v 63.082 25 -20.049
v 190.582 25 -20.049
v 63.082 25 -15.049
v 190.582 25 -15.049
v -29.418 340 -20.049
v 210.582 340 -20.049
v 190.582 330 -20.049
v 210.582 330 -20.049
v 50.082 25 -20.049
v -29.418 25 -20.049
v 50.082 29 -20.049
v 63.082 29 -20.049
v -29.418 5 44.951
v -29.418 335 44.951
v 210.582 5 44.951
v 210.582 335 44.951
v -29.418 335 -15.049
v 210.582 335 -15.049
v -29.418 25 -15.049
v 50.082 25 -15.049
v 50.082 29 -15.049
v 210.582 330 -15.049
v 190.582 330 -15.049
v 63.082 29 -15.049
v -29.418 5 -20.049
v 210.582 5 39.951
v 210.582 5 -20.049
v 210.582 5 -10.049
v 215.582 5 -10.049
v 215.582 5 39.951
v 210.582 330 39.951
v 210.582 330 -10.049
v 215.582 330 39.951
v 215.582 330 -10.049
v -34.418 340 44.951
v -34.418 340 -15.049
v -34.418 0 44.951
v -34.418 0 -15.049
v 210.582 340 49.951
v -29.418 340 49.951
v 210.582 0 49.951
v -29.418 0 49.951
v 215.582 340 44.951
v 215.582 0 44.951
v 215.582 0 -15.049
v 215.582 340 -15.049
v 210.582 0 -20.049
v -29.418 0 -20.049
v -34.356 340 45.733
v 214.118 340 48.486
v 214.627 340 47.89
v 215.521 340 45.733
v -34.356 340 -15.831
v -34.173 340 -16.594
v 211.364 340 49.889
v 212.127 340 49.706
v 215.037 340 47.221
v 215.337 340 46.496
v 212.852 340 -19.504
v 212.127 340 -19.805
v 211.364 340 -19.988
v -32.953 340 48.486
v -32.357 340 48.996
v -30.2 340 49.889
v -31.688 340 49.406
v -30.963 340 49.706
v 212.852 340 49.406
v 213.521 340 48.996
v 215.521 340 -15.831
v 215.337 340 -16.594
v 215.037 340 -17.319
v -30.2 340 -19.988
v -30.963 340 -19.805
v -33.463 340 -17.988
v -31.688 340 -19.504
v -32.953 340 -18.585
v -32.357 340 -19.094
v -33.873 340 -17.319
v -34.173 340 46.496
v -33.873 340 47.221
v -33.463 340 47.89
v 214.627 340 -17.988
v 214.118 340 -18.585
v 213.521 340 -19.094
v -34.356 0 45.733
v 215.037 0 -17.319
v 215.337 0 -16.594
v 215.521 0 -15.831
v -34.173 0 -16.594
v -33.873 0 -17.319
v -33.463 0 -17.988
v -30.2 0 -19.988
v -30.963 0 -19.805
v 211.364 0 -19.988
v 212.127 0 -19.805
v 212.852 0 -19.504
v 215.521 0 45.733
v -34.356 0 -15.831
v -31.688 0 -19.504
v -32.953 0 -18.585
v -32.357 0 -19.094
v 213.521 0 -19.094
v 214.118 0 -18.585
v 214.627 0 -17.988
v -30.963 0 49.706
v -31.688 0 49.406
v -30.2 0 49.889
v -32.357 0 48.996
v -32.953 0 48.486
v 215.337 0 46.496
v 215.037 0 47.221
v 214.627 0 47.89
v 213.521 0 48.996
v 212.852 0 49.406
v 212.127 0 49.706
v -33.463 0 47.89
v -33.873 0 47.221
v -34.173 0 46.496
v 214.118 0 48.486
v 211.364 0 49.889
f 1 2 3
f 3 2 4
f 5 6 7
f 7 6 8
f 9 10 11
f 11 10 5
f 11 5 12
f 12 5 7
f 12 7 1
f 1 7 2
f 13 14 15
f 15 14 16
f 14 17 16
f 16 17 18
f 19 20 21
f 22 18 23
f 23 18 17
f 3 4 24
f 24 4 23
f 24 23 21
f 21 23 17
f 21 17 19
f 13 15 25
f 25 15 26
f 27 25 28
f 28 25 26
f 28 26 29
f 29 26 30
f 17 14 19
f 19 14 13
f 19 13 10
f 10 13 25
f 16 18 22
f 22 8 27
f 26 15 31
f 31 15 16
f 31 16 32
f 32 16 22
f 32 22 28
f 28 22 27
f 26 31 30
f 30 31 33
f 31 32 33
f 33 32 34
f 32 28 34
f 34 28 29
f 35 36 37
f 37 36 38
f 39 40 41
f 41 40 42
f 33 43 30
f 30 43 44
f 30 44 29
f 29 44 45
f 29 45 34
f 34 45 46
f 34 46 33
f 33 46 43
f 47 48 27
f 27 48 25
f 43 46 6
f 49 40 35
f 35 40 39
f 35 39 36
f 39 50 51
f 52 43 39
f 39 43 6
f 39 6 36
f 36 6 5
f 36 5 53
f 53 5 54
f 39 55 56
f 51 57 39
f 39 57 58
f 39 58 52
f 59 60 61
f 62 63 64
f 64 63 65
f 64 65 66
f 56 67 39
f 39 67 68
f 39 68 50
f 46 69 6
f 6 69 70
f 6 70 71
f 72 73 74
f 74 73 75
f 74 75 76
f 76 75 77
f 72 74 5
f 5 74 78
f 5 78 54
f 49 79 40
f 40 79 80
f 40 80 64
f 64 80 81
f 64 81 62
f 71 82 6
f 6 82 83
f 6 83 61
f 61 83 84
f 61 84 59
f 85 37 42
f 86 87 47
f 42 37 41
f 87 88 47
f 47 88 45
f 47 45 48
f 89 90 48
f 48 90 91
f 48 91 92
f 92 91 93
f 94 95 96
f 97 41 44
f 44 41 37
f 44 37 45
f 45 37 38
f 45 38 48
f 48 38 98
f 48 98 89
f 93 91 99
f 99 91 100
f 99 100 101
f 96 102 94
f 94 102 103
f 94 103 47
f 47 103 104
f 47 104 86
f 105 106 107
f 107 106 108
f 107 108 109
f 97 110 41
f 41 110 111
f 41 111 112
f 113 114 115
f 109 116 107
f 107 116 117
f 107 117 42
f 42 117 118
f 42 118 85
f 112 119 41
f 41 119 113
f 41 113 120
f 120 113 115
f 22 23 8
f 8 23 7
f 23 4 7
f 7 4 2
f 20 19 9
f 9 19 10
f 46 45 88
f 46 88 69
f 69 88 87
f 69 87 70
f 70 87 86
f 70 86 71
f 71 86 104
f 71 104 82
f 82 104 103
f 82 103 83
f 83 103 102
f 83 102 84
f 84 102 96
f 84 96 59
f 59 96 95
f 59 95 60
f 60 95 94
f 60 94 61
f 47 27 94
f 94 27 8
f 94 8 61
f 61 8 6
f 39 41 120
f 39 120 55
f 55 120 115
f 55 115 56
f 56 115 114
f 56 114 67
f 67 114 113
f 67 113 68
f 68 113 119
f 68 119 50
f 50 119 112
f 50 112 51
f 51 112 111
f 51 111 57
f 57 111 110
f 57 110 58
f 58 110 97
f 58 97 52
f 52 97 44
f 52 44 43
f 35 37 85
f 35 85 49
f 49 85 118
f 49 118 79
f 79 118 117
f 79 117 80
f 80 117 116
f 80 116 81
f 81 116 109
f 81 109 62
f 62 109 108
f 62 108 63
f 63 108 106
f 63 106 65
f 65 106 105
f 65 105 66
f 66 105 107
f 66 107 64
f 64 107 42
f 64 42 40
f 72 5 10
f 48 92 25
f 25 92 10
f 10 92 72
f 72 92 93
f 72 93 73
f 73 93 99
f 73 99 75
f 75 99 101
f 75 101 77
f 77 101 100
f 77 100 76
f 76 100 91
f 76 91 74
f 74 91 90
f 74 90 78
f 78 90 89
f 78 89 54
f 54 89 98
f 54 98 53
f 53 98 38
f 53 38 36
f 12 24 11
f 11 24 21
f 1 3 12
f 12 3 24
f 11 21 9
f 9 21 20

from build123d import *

# Parameters (mm, degrees)
SKETCH_2_W          = 250
SKETCH_2_H          = 70
EXTRUDE_1_DEPTH     = 340
CUT_EXTRUDE_START   = -5
SKETCH_3_W          = 60
SKETCH_3_H          = 330
CUT_EXTRUDE_1_DEPTH = 240
SKETCH_4_W          = 50
SKETCH_4_H          = 325
CUT_EXTRUDE_2_DEPTH = 5
CUT_EXTRUDE_3_DEPTH = 5
FILLET_START        = -1
FILLET_1_DEPTH      = 342
SKETCH_6_W          = 13
SKETCH_6_H          = 4
CUT_EXTRUDE_4_DEPTH = 10


with BuildPart() as part:
    # 草圖2 → 填料-伸長1 (new body)
    with BuildSketch(Plane(origin=(0, 0, 0), x_dir=(1, 0, 0), z_dir=(0, 1, 0))):
        with Locations((90.582134355, -14.950757877)):
            Rectangle(SKETCH_2_W, SKETCH_2_H)
    extrude(amount=EXTRUDE_1_DEPTH)

    # 草圖3 → 除料-伸長1 (cut)
    with BuildSketch(Plane(origin=(215.582134355, 0, 0), x_dir=(0, 0, -1), z_dir=(1, 0, 0)).offset(CUT_EXTRUDE_START)):
        with Locations((-14.950757877, 170)):
            Rectangle(SKETCH_3_W, SKETCH_3_H)
    extrude(amount=-CUT_EXTRUDE_1_DEPTH, mode=Mode.SUBTRACT)

    # 草圖4 → 除料-伸長2 (cut)
    with BuildSketch(Plane(origin=(215.582134355, 0, 0), x_dir=(0, 0, -1), z_dir=(1, 0, 0))):
        with Locations((-14.950757877, 167.5)):
            Rectangle(SKETCH_4_W, SKETCH_4_H)
    extrude(amount=-CUT_EXTRUDE_2_DEPTH, mode=Mode.SUBTRACT)

    # 草圖5 → 除料-伸長3 (cut)
    with BuildSketch(Plane(origin=(0, 0, -20.049242123), x_dir=(-1, 0, 0), z_dir=(0, 0, -1))):
        Polygon((-210.582134355, 330), (-190.582134355, 330), (-190.582134355, 25), (29.417865645, 25), (29.417865645, 5), (-210.582134355, 5), align=None)
    extrude(amount=-CUT_EXTRUDE_3_DEPTH, mode=Mode.SUBTRACT)

    # 圓角1: read off the stored shape, not the designer's step
    # 圓角1 outline → 圓角1 (cut)
    with BuildSketch(Plane(origin=(0, 0, 0), x_dir=(1, 0, 0), z_dir=(0, 1, 0)).offset(FILLET_START)):
        with BuildLine():
            Line((215.582134355, 20.049242123), (210.582134355, 20.049242123))
            ThreePointArc((210.582134355, 20.049242123), (214.117668261, 18.584776029), (215.582134355, 15.049242123))
            Line((215.582134355, 15.049242123), (215.582134355, 20.049242123))
        make_face()
        with BuildLine():
            ThreePointArc((-34.417865645, 15.049242123), (-32.953399551, 18.584776029), (-29.417865645, 20.049242123))
            Line((-29.417865645, 20.049242123), (-34.417865645, 20.049242123))
            Line((-34.417865645, 20.049242123), (-34.417865645, 15.049242123))
        make_face()
        with BuildLine():
            Line((215.582134355, -49.950757877), (215.582134355, -44.950757877))
            ThreePointArc((215.582134355, -44.950757877), (214.117668261, -48.486291783), (210.582134355, -49.950757877))
            Line((210.582134355, -49.950757877), (215.582134355, -49.950757877))
        make_face()
        with BuildLine():
            ThreePointArc((-29.417865645, -49.950757877), (-32.953399551, -48.486291783), (-34.417865645, -44.950757877))
            Line((-34.417865645, -44.950757877), (-34.417865645, -49.950757877))
            Line((-34.417865645, -49.950757877), (-29.417865645, -49.950757877))
        make_face()
    extrude(amount=FILLET_1_DEPTH, mode=Mode.SUBTRACT)

    # 草圖6 → 除料-伸長4 (cut)
    with BuildSketch(Plane(origin=(0, 0, -20.049242123), x_dir=(-1, 0, 0), z_dir=(0, 0, -1))):
        with Locations((-56.582134355, 27)):
            Rectangle(SKETCH_6_W, SKETCH_6_H)
    extrude(amount=-CUT_EXTRUDE_4_DEPTH, mode=Mode.SUBTRACT)


solid = part.part
